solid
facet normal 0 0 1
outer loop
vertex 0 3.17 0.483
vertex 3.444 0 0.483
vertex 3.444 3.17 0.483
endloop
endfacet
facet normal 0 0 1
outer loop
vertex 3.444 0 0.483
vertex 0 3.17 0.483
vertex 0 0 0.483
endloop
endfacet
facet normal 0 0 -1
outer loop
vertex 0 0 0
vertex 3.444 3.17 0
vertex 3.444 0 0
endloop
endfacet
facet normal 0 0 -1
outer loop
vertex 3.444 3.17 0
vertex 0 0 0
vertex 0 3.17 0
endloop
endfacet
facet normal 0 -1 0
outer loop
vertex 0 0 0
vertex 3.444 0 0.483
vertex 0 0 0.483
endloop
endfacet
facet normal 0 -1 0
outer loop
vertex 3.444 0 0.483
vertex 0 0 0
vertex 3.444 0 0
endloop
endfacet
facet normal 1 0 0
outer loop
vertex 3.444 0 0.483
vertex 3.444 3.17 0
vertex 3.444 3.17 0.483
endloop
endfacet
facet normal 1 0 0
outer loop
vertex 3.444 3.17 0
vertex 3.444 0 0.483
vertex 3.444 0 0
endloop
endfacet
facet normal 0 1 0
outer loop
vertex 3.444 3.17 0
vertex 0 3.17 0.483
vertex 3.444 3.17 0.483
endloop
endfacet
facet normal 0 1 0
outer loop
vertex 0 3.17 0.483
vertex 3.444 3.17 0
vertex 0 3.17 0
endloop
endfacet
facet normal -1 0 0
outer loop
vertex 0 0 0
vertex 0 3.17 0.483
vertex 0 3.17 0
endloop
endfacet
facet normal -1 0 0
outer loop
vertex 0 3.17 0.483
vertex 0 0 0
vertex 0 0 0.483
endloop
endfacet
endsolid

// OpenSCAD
/* Warning, this is a very basic generator with a lot of approximation 
input data : [WLCSP, FZB, 3.444x3.17x0.483mm, 56, , A, C04-21254A]
generated by com.zoubworld.electronics.cad.model3d.Basic
Date : Sun Feb 15 10:50:49 CET 2026
*/

//body
color("black")
translate([0,0,0])
cube([3.444,3.17,0.483], center=false);
